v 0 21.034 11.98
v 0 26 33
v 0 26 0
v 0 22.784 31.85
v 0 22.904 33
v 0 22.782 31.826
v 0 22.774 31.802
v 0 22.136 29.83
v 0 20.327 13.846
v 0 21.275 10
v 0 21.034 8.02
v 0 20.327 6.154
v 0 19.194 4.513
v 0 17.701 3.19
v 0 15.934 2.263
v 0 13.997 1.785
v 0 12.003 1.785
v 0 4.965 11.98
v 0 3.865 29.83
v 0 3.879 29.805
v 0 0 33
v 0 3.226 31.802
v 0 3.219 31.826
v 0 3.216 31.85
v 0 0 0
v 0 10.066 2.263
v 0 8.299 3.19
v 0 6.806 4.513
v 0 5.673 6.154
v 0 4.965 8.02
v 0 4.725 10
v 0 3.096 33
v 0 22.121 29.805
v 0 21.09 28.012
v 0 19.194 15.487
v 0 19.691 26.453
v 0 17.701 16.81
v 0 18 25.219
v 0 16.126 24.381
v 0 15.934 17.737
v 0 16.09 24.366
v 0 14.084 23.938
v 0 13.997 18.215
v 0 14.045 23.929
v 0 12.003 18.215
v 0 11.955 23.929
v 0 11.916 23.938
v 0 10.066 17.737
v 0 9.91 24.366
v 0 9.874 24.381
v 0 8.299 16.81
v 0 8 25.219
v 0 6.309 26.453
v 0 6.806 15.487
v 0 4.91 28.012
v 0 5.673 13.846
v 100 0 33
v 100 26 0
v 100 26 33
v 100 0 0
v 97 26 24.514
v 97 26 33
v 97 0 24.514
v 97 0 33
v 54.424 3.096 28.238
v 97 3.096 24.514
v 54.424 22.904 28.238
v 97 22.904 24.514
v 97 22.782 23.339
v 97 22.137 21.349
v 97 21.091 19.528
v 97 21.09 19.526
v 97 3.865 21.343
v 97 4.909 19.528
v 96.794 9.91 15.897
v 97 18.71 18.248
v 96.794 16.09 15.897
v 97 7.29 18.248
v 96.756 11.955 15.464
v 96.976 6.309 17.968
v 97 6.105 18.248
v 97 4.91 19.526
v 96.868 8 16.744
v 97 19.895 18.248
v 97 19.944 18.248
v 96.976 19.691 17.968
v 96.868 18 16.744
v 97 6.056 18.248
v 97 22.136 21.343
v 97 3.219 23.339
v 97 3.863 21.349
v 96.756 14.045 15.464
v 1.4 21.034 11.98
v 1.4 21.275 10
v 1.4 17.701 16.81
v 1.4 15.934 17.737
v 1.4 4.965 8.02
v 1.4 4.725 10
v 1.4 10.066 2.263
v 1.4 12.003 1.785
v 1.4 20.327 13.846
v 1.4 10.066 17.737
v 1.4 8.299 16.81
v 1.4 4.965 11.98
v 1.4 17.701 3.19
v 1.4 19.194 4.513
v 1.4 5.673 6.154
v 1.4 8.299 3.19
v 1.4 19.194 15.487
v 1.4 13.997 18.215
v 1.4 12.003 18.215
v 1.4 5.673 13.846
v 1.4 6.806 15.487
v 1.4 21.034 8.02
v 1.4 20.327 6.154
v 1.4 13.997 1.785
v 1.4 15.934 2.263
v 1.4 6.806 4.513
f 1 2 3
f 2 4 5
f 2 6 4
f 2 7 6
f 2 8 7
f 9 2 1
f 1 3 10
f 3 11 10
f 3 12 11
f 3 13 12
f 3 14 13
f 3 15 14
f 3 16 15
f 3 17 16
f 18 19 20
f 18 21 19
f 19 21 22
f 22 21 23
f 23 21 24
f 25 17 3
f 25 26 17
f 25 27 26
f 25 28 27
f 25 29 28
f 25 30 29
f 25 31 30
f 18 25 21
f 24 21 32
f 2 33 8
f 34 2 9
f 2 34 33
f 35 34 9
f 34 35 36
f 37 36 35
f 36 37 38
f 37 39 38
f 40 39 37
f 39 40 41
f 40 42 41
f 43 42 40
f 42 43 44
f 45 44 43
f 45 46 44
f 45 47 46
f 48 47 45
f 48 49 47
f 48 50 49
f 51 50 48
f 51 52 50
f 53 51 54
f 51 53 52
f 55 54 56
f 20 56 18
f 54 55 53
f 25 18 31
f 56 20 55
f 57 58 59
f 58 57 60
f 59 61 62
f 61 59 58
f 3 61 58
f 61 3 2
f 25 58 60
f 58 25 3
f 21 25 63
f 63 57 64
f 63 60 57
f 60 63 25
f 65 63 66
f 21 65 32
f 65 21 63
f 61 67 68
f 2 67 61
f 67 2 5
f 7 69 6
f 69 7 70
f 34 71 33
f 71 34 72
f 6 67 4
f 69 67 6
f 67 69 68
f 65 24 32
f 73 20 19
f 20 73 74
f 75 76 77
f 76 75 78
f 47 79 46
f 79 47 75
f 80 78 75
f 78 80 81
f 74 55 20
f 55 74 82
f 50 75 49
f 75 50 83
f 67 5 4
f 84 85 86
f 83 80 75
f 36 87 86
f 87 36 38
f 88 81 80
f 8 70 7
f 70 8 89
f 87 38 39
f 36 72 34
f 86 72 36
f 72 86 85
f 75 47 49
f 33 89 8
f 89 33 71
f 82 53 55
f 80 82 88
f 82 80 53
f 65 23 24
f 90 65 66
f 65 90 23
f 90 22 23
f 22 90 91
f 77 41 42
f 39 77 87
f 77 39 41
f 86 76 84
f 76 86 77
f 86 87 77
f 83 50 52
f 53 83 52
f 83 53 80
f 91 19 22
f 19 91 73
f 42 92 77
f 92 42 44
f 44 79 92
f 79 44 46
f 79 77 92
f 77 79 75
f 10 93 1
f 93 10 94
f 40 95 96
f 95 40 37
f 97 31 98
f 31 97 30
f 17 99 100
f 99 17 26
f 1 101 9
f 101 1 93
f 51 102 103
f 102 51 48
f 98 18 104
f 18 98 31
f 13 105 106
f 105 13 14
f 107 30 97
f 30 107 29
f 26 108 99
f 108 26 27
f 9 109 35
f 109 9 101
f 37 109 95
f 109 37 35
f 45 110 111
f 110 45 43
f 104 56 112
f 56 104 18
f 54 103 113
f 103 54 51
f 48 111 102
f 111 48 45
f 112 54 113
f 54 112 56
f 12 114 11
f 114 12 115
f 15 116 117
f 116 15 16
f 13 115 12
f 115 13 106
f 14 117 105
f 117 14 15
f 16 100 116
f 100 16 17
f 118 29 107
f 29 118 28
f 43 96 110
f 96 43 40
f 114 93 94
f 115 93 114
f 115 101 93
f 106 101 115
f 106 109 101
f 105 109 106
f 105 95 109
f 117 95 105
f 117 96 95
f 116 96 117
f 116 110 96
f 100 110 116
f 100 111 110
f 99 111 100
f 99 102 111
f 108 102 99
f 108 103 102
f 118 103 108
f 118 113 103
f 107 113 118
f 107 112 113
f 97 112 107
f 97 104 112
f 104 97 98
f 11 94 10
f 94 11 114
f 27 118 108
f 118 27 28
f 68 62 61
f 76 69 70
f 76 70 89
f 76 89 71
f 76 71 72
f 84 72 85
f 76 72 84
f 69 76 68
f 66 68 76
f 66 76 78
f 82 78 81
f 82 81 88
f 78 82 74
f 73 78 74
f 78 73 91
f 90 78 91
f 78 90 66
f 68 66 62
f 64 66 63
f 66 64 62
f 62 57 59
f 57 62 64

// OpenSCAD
length = 100;
diameter = 18 + 2;
wallThickness = 3;
angle = 5;
floorThickness = 10;
height = diameter + floorThickness + 3;
echo(height);
washerDiameter = 16.25;
washerHeight = 1.4;
washerHeightOffset = 1;
backWasherDiameter = washerDiameter + .3;
magnetHeightOffset = 1;
magnetBaseInnerDiameter = 15.4;
magnetHeight = 4.0;
width = diameter + wallThickness * 2;
centerOfConnectorX = 50;
centerOfConnectorY = 10;
centerOfBackConnectorX = width/2;
echo(centerOfBackConnectorX);
echo(width);
union() {
    difference(){
     cube([length, width, height]);
     translate([0, 0, height])
        rotate([0, angle, 0])
            cube([length + 1, width, height]);
        
        translate([-1, diameter/2 + wallThickness, height + 1])
            rotate([90 + angle, 0, 90])
                cylinder(length - 1, d=diameter);
        translate([0, centerOfBackConnectorX, centerOfConnectorY])
            rotate([90, 0, 90])
                cylinder(washerHeight, d=backWasherDiameter);
    }
    translate([length - wallThickness, 0, 0])
        cube([wallThickness, width, height]);
}
